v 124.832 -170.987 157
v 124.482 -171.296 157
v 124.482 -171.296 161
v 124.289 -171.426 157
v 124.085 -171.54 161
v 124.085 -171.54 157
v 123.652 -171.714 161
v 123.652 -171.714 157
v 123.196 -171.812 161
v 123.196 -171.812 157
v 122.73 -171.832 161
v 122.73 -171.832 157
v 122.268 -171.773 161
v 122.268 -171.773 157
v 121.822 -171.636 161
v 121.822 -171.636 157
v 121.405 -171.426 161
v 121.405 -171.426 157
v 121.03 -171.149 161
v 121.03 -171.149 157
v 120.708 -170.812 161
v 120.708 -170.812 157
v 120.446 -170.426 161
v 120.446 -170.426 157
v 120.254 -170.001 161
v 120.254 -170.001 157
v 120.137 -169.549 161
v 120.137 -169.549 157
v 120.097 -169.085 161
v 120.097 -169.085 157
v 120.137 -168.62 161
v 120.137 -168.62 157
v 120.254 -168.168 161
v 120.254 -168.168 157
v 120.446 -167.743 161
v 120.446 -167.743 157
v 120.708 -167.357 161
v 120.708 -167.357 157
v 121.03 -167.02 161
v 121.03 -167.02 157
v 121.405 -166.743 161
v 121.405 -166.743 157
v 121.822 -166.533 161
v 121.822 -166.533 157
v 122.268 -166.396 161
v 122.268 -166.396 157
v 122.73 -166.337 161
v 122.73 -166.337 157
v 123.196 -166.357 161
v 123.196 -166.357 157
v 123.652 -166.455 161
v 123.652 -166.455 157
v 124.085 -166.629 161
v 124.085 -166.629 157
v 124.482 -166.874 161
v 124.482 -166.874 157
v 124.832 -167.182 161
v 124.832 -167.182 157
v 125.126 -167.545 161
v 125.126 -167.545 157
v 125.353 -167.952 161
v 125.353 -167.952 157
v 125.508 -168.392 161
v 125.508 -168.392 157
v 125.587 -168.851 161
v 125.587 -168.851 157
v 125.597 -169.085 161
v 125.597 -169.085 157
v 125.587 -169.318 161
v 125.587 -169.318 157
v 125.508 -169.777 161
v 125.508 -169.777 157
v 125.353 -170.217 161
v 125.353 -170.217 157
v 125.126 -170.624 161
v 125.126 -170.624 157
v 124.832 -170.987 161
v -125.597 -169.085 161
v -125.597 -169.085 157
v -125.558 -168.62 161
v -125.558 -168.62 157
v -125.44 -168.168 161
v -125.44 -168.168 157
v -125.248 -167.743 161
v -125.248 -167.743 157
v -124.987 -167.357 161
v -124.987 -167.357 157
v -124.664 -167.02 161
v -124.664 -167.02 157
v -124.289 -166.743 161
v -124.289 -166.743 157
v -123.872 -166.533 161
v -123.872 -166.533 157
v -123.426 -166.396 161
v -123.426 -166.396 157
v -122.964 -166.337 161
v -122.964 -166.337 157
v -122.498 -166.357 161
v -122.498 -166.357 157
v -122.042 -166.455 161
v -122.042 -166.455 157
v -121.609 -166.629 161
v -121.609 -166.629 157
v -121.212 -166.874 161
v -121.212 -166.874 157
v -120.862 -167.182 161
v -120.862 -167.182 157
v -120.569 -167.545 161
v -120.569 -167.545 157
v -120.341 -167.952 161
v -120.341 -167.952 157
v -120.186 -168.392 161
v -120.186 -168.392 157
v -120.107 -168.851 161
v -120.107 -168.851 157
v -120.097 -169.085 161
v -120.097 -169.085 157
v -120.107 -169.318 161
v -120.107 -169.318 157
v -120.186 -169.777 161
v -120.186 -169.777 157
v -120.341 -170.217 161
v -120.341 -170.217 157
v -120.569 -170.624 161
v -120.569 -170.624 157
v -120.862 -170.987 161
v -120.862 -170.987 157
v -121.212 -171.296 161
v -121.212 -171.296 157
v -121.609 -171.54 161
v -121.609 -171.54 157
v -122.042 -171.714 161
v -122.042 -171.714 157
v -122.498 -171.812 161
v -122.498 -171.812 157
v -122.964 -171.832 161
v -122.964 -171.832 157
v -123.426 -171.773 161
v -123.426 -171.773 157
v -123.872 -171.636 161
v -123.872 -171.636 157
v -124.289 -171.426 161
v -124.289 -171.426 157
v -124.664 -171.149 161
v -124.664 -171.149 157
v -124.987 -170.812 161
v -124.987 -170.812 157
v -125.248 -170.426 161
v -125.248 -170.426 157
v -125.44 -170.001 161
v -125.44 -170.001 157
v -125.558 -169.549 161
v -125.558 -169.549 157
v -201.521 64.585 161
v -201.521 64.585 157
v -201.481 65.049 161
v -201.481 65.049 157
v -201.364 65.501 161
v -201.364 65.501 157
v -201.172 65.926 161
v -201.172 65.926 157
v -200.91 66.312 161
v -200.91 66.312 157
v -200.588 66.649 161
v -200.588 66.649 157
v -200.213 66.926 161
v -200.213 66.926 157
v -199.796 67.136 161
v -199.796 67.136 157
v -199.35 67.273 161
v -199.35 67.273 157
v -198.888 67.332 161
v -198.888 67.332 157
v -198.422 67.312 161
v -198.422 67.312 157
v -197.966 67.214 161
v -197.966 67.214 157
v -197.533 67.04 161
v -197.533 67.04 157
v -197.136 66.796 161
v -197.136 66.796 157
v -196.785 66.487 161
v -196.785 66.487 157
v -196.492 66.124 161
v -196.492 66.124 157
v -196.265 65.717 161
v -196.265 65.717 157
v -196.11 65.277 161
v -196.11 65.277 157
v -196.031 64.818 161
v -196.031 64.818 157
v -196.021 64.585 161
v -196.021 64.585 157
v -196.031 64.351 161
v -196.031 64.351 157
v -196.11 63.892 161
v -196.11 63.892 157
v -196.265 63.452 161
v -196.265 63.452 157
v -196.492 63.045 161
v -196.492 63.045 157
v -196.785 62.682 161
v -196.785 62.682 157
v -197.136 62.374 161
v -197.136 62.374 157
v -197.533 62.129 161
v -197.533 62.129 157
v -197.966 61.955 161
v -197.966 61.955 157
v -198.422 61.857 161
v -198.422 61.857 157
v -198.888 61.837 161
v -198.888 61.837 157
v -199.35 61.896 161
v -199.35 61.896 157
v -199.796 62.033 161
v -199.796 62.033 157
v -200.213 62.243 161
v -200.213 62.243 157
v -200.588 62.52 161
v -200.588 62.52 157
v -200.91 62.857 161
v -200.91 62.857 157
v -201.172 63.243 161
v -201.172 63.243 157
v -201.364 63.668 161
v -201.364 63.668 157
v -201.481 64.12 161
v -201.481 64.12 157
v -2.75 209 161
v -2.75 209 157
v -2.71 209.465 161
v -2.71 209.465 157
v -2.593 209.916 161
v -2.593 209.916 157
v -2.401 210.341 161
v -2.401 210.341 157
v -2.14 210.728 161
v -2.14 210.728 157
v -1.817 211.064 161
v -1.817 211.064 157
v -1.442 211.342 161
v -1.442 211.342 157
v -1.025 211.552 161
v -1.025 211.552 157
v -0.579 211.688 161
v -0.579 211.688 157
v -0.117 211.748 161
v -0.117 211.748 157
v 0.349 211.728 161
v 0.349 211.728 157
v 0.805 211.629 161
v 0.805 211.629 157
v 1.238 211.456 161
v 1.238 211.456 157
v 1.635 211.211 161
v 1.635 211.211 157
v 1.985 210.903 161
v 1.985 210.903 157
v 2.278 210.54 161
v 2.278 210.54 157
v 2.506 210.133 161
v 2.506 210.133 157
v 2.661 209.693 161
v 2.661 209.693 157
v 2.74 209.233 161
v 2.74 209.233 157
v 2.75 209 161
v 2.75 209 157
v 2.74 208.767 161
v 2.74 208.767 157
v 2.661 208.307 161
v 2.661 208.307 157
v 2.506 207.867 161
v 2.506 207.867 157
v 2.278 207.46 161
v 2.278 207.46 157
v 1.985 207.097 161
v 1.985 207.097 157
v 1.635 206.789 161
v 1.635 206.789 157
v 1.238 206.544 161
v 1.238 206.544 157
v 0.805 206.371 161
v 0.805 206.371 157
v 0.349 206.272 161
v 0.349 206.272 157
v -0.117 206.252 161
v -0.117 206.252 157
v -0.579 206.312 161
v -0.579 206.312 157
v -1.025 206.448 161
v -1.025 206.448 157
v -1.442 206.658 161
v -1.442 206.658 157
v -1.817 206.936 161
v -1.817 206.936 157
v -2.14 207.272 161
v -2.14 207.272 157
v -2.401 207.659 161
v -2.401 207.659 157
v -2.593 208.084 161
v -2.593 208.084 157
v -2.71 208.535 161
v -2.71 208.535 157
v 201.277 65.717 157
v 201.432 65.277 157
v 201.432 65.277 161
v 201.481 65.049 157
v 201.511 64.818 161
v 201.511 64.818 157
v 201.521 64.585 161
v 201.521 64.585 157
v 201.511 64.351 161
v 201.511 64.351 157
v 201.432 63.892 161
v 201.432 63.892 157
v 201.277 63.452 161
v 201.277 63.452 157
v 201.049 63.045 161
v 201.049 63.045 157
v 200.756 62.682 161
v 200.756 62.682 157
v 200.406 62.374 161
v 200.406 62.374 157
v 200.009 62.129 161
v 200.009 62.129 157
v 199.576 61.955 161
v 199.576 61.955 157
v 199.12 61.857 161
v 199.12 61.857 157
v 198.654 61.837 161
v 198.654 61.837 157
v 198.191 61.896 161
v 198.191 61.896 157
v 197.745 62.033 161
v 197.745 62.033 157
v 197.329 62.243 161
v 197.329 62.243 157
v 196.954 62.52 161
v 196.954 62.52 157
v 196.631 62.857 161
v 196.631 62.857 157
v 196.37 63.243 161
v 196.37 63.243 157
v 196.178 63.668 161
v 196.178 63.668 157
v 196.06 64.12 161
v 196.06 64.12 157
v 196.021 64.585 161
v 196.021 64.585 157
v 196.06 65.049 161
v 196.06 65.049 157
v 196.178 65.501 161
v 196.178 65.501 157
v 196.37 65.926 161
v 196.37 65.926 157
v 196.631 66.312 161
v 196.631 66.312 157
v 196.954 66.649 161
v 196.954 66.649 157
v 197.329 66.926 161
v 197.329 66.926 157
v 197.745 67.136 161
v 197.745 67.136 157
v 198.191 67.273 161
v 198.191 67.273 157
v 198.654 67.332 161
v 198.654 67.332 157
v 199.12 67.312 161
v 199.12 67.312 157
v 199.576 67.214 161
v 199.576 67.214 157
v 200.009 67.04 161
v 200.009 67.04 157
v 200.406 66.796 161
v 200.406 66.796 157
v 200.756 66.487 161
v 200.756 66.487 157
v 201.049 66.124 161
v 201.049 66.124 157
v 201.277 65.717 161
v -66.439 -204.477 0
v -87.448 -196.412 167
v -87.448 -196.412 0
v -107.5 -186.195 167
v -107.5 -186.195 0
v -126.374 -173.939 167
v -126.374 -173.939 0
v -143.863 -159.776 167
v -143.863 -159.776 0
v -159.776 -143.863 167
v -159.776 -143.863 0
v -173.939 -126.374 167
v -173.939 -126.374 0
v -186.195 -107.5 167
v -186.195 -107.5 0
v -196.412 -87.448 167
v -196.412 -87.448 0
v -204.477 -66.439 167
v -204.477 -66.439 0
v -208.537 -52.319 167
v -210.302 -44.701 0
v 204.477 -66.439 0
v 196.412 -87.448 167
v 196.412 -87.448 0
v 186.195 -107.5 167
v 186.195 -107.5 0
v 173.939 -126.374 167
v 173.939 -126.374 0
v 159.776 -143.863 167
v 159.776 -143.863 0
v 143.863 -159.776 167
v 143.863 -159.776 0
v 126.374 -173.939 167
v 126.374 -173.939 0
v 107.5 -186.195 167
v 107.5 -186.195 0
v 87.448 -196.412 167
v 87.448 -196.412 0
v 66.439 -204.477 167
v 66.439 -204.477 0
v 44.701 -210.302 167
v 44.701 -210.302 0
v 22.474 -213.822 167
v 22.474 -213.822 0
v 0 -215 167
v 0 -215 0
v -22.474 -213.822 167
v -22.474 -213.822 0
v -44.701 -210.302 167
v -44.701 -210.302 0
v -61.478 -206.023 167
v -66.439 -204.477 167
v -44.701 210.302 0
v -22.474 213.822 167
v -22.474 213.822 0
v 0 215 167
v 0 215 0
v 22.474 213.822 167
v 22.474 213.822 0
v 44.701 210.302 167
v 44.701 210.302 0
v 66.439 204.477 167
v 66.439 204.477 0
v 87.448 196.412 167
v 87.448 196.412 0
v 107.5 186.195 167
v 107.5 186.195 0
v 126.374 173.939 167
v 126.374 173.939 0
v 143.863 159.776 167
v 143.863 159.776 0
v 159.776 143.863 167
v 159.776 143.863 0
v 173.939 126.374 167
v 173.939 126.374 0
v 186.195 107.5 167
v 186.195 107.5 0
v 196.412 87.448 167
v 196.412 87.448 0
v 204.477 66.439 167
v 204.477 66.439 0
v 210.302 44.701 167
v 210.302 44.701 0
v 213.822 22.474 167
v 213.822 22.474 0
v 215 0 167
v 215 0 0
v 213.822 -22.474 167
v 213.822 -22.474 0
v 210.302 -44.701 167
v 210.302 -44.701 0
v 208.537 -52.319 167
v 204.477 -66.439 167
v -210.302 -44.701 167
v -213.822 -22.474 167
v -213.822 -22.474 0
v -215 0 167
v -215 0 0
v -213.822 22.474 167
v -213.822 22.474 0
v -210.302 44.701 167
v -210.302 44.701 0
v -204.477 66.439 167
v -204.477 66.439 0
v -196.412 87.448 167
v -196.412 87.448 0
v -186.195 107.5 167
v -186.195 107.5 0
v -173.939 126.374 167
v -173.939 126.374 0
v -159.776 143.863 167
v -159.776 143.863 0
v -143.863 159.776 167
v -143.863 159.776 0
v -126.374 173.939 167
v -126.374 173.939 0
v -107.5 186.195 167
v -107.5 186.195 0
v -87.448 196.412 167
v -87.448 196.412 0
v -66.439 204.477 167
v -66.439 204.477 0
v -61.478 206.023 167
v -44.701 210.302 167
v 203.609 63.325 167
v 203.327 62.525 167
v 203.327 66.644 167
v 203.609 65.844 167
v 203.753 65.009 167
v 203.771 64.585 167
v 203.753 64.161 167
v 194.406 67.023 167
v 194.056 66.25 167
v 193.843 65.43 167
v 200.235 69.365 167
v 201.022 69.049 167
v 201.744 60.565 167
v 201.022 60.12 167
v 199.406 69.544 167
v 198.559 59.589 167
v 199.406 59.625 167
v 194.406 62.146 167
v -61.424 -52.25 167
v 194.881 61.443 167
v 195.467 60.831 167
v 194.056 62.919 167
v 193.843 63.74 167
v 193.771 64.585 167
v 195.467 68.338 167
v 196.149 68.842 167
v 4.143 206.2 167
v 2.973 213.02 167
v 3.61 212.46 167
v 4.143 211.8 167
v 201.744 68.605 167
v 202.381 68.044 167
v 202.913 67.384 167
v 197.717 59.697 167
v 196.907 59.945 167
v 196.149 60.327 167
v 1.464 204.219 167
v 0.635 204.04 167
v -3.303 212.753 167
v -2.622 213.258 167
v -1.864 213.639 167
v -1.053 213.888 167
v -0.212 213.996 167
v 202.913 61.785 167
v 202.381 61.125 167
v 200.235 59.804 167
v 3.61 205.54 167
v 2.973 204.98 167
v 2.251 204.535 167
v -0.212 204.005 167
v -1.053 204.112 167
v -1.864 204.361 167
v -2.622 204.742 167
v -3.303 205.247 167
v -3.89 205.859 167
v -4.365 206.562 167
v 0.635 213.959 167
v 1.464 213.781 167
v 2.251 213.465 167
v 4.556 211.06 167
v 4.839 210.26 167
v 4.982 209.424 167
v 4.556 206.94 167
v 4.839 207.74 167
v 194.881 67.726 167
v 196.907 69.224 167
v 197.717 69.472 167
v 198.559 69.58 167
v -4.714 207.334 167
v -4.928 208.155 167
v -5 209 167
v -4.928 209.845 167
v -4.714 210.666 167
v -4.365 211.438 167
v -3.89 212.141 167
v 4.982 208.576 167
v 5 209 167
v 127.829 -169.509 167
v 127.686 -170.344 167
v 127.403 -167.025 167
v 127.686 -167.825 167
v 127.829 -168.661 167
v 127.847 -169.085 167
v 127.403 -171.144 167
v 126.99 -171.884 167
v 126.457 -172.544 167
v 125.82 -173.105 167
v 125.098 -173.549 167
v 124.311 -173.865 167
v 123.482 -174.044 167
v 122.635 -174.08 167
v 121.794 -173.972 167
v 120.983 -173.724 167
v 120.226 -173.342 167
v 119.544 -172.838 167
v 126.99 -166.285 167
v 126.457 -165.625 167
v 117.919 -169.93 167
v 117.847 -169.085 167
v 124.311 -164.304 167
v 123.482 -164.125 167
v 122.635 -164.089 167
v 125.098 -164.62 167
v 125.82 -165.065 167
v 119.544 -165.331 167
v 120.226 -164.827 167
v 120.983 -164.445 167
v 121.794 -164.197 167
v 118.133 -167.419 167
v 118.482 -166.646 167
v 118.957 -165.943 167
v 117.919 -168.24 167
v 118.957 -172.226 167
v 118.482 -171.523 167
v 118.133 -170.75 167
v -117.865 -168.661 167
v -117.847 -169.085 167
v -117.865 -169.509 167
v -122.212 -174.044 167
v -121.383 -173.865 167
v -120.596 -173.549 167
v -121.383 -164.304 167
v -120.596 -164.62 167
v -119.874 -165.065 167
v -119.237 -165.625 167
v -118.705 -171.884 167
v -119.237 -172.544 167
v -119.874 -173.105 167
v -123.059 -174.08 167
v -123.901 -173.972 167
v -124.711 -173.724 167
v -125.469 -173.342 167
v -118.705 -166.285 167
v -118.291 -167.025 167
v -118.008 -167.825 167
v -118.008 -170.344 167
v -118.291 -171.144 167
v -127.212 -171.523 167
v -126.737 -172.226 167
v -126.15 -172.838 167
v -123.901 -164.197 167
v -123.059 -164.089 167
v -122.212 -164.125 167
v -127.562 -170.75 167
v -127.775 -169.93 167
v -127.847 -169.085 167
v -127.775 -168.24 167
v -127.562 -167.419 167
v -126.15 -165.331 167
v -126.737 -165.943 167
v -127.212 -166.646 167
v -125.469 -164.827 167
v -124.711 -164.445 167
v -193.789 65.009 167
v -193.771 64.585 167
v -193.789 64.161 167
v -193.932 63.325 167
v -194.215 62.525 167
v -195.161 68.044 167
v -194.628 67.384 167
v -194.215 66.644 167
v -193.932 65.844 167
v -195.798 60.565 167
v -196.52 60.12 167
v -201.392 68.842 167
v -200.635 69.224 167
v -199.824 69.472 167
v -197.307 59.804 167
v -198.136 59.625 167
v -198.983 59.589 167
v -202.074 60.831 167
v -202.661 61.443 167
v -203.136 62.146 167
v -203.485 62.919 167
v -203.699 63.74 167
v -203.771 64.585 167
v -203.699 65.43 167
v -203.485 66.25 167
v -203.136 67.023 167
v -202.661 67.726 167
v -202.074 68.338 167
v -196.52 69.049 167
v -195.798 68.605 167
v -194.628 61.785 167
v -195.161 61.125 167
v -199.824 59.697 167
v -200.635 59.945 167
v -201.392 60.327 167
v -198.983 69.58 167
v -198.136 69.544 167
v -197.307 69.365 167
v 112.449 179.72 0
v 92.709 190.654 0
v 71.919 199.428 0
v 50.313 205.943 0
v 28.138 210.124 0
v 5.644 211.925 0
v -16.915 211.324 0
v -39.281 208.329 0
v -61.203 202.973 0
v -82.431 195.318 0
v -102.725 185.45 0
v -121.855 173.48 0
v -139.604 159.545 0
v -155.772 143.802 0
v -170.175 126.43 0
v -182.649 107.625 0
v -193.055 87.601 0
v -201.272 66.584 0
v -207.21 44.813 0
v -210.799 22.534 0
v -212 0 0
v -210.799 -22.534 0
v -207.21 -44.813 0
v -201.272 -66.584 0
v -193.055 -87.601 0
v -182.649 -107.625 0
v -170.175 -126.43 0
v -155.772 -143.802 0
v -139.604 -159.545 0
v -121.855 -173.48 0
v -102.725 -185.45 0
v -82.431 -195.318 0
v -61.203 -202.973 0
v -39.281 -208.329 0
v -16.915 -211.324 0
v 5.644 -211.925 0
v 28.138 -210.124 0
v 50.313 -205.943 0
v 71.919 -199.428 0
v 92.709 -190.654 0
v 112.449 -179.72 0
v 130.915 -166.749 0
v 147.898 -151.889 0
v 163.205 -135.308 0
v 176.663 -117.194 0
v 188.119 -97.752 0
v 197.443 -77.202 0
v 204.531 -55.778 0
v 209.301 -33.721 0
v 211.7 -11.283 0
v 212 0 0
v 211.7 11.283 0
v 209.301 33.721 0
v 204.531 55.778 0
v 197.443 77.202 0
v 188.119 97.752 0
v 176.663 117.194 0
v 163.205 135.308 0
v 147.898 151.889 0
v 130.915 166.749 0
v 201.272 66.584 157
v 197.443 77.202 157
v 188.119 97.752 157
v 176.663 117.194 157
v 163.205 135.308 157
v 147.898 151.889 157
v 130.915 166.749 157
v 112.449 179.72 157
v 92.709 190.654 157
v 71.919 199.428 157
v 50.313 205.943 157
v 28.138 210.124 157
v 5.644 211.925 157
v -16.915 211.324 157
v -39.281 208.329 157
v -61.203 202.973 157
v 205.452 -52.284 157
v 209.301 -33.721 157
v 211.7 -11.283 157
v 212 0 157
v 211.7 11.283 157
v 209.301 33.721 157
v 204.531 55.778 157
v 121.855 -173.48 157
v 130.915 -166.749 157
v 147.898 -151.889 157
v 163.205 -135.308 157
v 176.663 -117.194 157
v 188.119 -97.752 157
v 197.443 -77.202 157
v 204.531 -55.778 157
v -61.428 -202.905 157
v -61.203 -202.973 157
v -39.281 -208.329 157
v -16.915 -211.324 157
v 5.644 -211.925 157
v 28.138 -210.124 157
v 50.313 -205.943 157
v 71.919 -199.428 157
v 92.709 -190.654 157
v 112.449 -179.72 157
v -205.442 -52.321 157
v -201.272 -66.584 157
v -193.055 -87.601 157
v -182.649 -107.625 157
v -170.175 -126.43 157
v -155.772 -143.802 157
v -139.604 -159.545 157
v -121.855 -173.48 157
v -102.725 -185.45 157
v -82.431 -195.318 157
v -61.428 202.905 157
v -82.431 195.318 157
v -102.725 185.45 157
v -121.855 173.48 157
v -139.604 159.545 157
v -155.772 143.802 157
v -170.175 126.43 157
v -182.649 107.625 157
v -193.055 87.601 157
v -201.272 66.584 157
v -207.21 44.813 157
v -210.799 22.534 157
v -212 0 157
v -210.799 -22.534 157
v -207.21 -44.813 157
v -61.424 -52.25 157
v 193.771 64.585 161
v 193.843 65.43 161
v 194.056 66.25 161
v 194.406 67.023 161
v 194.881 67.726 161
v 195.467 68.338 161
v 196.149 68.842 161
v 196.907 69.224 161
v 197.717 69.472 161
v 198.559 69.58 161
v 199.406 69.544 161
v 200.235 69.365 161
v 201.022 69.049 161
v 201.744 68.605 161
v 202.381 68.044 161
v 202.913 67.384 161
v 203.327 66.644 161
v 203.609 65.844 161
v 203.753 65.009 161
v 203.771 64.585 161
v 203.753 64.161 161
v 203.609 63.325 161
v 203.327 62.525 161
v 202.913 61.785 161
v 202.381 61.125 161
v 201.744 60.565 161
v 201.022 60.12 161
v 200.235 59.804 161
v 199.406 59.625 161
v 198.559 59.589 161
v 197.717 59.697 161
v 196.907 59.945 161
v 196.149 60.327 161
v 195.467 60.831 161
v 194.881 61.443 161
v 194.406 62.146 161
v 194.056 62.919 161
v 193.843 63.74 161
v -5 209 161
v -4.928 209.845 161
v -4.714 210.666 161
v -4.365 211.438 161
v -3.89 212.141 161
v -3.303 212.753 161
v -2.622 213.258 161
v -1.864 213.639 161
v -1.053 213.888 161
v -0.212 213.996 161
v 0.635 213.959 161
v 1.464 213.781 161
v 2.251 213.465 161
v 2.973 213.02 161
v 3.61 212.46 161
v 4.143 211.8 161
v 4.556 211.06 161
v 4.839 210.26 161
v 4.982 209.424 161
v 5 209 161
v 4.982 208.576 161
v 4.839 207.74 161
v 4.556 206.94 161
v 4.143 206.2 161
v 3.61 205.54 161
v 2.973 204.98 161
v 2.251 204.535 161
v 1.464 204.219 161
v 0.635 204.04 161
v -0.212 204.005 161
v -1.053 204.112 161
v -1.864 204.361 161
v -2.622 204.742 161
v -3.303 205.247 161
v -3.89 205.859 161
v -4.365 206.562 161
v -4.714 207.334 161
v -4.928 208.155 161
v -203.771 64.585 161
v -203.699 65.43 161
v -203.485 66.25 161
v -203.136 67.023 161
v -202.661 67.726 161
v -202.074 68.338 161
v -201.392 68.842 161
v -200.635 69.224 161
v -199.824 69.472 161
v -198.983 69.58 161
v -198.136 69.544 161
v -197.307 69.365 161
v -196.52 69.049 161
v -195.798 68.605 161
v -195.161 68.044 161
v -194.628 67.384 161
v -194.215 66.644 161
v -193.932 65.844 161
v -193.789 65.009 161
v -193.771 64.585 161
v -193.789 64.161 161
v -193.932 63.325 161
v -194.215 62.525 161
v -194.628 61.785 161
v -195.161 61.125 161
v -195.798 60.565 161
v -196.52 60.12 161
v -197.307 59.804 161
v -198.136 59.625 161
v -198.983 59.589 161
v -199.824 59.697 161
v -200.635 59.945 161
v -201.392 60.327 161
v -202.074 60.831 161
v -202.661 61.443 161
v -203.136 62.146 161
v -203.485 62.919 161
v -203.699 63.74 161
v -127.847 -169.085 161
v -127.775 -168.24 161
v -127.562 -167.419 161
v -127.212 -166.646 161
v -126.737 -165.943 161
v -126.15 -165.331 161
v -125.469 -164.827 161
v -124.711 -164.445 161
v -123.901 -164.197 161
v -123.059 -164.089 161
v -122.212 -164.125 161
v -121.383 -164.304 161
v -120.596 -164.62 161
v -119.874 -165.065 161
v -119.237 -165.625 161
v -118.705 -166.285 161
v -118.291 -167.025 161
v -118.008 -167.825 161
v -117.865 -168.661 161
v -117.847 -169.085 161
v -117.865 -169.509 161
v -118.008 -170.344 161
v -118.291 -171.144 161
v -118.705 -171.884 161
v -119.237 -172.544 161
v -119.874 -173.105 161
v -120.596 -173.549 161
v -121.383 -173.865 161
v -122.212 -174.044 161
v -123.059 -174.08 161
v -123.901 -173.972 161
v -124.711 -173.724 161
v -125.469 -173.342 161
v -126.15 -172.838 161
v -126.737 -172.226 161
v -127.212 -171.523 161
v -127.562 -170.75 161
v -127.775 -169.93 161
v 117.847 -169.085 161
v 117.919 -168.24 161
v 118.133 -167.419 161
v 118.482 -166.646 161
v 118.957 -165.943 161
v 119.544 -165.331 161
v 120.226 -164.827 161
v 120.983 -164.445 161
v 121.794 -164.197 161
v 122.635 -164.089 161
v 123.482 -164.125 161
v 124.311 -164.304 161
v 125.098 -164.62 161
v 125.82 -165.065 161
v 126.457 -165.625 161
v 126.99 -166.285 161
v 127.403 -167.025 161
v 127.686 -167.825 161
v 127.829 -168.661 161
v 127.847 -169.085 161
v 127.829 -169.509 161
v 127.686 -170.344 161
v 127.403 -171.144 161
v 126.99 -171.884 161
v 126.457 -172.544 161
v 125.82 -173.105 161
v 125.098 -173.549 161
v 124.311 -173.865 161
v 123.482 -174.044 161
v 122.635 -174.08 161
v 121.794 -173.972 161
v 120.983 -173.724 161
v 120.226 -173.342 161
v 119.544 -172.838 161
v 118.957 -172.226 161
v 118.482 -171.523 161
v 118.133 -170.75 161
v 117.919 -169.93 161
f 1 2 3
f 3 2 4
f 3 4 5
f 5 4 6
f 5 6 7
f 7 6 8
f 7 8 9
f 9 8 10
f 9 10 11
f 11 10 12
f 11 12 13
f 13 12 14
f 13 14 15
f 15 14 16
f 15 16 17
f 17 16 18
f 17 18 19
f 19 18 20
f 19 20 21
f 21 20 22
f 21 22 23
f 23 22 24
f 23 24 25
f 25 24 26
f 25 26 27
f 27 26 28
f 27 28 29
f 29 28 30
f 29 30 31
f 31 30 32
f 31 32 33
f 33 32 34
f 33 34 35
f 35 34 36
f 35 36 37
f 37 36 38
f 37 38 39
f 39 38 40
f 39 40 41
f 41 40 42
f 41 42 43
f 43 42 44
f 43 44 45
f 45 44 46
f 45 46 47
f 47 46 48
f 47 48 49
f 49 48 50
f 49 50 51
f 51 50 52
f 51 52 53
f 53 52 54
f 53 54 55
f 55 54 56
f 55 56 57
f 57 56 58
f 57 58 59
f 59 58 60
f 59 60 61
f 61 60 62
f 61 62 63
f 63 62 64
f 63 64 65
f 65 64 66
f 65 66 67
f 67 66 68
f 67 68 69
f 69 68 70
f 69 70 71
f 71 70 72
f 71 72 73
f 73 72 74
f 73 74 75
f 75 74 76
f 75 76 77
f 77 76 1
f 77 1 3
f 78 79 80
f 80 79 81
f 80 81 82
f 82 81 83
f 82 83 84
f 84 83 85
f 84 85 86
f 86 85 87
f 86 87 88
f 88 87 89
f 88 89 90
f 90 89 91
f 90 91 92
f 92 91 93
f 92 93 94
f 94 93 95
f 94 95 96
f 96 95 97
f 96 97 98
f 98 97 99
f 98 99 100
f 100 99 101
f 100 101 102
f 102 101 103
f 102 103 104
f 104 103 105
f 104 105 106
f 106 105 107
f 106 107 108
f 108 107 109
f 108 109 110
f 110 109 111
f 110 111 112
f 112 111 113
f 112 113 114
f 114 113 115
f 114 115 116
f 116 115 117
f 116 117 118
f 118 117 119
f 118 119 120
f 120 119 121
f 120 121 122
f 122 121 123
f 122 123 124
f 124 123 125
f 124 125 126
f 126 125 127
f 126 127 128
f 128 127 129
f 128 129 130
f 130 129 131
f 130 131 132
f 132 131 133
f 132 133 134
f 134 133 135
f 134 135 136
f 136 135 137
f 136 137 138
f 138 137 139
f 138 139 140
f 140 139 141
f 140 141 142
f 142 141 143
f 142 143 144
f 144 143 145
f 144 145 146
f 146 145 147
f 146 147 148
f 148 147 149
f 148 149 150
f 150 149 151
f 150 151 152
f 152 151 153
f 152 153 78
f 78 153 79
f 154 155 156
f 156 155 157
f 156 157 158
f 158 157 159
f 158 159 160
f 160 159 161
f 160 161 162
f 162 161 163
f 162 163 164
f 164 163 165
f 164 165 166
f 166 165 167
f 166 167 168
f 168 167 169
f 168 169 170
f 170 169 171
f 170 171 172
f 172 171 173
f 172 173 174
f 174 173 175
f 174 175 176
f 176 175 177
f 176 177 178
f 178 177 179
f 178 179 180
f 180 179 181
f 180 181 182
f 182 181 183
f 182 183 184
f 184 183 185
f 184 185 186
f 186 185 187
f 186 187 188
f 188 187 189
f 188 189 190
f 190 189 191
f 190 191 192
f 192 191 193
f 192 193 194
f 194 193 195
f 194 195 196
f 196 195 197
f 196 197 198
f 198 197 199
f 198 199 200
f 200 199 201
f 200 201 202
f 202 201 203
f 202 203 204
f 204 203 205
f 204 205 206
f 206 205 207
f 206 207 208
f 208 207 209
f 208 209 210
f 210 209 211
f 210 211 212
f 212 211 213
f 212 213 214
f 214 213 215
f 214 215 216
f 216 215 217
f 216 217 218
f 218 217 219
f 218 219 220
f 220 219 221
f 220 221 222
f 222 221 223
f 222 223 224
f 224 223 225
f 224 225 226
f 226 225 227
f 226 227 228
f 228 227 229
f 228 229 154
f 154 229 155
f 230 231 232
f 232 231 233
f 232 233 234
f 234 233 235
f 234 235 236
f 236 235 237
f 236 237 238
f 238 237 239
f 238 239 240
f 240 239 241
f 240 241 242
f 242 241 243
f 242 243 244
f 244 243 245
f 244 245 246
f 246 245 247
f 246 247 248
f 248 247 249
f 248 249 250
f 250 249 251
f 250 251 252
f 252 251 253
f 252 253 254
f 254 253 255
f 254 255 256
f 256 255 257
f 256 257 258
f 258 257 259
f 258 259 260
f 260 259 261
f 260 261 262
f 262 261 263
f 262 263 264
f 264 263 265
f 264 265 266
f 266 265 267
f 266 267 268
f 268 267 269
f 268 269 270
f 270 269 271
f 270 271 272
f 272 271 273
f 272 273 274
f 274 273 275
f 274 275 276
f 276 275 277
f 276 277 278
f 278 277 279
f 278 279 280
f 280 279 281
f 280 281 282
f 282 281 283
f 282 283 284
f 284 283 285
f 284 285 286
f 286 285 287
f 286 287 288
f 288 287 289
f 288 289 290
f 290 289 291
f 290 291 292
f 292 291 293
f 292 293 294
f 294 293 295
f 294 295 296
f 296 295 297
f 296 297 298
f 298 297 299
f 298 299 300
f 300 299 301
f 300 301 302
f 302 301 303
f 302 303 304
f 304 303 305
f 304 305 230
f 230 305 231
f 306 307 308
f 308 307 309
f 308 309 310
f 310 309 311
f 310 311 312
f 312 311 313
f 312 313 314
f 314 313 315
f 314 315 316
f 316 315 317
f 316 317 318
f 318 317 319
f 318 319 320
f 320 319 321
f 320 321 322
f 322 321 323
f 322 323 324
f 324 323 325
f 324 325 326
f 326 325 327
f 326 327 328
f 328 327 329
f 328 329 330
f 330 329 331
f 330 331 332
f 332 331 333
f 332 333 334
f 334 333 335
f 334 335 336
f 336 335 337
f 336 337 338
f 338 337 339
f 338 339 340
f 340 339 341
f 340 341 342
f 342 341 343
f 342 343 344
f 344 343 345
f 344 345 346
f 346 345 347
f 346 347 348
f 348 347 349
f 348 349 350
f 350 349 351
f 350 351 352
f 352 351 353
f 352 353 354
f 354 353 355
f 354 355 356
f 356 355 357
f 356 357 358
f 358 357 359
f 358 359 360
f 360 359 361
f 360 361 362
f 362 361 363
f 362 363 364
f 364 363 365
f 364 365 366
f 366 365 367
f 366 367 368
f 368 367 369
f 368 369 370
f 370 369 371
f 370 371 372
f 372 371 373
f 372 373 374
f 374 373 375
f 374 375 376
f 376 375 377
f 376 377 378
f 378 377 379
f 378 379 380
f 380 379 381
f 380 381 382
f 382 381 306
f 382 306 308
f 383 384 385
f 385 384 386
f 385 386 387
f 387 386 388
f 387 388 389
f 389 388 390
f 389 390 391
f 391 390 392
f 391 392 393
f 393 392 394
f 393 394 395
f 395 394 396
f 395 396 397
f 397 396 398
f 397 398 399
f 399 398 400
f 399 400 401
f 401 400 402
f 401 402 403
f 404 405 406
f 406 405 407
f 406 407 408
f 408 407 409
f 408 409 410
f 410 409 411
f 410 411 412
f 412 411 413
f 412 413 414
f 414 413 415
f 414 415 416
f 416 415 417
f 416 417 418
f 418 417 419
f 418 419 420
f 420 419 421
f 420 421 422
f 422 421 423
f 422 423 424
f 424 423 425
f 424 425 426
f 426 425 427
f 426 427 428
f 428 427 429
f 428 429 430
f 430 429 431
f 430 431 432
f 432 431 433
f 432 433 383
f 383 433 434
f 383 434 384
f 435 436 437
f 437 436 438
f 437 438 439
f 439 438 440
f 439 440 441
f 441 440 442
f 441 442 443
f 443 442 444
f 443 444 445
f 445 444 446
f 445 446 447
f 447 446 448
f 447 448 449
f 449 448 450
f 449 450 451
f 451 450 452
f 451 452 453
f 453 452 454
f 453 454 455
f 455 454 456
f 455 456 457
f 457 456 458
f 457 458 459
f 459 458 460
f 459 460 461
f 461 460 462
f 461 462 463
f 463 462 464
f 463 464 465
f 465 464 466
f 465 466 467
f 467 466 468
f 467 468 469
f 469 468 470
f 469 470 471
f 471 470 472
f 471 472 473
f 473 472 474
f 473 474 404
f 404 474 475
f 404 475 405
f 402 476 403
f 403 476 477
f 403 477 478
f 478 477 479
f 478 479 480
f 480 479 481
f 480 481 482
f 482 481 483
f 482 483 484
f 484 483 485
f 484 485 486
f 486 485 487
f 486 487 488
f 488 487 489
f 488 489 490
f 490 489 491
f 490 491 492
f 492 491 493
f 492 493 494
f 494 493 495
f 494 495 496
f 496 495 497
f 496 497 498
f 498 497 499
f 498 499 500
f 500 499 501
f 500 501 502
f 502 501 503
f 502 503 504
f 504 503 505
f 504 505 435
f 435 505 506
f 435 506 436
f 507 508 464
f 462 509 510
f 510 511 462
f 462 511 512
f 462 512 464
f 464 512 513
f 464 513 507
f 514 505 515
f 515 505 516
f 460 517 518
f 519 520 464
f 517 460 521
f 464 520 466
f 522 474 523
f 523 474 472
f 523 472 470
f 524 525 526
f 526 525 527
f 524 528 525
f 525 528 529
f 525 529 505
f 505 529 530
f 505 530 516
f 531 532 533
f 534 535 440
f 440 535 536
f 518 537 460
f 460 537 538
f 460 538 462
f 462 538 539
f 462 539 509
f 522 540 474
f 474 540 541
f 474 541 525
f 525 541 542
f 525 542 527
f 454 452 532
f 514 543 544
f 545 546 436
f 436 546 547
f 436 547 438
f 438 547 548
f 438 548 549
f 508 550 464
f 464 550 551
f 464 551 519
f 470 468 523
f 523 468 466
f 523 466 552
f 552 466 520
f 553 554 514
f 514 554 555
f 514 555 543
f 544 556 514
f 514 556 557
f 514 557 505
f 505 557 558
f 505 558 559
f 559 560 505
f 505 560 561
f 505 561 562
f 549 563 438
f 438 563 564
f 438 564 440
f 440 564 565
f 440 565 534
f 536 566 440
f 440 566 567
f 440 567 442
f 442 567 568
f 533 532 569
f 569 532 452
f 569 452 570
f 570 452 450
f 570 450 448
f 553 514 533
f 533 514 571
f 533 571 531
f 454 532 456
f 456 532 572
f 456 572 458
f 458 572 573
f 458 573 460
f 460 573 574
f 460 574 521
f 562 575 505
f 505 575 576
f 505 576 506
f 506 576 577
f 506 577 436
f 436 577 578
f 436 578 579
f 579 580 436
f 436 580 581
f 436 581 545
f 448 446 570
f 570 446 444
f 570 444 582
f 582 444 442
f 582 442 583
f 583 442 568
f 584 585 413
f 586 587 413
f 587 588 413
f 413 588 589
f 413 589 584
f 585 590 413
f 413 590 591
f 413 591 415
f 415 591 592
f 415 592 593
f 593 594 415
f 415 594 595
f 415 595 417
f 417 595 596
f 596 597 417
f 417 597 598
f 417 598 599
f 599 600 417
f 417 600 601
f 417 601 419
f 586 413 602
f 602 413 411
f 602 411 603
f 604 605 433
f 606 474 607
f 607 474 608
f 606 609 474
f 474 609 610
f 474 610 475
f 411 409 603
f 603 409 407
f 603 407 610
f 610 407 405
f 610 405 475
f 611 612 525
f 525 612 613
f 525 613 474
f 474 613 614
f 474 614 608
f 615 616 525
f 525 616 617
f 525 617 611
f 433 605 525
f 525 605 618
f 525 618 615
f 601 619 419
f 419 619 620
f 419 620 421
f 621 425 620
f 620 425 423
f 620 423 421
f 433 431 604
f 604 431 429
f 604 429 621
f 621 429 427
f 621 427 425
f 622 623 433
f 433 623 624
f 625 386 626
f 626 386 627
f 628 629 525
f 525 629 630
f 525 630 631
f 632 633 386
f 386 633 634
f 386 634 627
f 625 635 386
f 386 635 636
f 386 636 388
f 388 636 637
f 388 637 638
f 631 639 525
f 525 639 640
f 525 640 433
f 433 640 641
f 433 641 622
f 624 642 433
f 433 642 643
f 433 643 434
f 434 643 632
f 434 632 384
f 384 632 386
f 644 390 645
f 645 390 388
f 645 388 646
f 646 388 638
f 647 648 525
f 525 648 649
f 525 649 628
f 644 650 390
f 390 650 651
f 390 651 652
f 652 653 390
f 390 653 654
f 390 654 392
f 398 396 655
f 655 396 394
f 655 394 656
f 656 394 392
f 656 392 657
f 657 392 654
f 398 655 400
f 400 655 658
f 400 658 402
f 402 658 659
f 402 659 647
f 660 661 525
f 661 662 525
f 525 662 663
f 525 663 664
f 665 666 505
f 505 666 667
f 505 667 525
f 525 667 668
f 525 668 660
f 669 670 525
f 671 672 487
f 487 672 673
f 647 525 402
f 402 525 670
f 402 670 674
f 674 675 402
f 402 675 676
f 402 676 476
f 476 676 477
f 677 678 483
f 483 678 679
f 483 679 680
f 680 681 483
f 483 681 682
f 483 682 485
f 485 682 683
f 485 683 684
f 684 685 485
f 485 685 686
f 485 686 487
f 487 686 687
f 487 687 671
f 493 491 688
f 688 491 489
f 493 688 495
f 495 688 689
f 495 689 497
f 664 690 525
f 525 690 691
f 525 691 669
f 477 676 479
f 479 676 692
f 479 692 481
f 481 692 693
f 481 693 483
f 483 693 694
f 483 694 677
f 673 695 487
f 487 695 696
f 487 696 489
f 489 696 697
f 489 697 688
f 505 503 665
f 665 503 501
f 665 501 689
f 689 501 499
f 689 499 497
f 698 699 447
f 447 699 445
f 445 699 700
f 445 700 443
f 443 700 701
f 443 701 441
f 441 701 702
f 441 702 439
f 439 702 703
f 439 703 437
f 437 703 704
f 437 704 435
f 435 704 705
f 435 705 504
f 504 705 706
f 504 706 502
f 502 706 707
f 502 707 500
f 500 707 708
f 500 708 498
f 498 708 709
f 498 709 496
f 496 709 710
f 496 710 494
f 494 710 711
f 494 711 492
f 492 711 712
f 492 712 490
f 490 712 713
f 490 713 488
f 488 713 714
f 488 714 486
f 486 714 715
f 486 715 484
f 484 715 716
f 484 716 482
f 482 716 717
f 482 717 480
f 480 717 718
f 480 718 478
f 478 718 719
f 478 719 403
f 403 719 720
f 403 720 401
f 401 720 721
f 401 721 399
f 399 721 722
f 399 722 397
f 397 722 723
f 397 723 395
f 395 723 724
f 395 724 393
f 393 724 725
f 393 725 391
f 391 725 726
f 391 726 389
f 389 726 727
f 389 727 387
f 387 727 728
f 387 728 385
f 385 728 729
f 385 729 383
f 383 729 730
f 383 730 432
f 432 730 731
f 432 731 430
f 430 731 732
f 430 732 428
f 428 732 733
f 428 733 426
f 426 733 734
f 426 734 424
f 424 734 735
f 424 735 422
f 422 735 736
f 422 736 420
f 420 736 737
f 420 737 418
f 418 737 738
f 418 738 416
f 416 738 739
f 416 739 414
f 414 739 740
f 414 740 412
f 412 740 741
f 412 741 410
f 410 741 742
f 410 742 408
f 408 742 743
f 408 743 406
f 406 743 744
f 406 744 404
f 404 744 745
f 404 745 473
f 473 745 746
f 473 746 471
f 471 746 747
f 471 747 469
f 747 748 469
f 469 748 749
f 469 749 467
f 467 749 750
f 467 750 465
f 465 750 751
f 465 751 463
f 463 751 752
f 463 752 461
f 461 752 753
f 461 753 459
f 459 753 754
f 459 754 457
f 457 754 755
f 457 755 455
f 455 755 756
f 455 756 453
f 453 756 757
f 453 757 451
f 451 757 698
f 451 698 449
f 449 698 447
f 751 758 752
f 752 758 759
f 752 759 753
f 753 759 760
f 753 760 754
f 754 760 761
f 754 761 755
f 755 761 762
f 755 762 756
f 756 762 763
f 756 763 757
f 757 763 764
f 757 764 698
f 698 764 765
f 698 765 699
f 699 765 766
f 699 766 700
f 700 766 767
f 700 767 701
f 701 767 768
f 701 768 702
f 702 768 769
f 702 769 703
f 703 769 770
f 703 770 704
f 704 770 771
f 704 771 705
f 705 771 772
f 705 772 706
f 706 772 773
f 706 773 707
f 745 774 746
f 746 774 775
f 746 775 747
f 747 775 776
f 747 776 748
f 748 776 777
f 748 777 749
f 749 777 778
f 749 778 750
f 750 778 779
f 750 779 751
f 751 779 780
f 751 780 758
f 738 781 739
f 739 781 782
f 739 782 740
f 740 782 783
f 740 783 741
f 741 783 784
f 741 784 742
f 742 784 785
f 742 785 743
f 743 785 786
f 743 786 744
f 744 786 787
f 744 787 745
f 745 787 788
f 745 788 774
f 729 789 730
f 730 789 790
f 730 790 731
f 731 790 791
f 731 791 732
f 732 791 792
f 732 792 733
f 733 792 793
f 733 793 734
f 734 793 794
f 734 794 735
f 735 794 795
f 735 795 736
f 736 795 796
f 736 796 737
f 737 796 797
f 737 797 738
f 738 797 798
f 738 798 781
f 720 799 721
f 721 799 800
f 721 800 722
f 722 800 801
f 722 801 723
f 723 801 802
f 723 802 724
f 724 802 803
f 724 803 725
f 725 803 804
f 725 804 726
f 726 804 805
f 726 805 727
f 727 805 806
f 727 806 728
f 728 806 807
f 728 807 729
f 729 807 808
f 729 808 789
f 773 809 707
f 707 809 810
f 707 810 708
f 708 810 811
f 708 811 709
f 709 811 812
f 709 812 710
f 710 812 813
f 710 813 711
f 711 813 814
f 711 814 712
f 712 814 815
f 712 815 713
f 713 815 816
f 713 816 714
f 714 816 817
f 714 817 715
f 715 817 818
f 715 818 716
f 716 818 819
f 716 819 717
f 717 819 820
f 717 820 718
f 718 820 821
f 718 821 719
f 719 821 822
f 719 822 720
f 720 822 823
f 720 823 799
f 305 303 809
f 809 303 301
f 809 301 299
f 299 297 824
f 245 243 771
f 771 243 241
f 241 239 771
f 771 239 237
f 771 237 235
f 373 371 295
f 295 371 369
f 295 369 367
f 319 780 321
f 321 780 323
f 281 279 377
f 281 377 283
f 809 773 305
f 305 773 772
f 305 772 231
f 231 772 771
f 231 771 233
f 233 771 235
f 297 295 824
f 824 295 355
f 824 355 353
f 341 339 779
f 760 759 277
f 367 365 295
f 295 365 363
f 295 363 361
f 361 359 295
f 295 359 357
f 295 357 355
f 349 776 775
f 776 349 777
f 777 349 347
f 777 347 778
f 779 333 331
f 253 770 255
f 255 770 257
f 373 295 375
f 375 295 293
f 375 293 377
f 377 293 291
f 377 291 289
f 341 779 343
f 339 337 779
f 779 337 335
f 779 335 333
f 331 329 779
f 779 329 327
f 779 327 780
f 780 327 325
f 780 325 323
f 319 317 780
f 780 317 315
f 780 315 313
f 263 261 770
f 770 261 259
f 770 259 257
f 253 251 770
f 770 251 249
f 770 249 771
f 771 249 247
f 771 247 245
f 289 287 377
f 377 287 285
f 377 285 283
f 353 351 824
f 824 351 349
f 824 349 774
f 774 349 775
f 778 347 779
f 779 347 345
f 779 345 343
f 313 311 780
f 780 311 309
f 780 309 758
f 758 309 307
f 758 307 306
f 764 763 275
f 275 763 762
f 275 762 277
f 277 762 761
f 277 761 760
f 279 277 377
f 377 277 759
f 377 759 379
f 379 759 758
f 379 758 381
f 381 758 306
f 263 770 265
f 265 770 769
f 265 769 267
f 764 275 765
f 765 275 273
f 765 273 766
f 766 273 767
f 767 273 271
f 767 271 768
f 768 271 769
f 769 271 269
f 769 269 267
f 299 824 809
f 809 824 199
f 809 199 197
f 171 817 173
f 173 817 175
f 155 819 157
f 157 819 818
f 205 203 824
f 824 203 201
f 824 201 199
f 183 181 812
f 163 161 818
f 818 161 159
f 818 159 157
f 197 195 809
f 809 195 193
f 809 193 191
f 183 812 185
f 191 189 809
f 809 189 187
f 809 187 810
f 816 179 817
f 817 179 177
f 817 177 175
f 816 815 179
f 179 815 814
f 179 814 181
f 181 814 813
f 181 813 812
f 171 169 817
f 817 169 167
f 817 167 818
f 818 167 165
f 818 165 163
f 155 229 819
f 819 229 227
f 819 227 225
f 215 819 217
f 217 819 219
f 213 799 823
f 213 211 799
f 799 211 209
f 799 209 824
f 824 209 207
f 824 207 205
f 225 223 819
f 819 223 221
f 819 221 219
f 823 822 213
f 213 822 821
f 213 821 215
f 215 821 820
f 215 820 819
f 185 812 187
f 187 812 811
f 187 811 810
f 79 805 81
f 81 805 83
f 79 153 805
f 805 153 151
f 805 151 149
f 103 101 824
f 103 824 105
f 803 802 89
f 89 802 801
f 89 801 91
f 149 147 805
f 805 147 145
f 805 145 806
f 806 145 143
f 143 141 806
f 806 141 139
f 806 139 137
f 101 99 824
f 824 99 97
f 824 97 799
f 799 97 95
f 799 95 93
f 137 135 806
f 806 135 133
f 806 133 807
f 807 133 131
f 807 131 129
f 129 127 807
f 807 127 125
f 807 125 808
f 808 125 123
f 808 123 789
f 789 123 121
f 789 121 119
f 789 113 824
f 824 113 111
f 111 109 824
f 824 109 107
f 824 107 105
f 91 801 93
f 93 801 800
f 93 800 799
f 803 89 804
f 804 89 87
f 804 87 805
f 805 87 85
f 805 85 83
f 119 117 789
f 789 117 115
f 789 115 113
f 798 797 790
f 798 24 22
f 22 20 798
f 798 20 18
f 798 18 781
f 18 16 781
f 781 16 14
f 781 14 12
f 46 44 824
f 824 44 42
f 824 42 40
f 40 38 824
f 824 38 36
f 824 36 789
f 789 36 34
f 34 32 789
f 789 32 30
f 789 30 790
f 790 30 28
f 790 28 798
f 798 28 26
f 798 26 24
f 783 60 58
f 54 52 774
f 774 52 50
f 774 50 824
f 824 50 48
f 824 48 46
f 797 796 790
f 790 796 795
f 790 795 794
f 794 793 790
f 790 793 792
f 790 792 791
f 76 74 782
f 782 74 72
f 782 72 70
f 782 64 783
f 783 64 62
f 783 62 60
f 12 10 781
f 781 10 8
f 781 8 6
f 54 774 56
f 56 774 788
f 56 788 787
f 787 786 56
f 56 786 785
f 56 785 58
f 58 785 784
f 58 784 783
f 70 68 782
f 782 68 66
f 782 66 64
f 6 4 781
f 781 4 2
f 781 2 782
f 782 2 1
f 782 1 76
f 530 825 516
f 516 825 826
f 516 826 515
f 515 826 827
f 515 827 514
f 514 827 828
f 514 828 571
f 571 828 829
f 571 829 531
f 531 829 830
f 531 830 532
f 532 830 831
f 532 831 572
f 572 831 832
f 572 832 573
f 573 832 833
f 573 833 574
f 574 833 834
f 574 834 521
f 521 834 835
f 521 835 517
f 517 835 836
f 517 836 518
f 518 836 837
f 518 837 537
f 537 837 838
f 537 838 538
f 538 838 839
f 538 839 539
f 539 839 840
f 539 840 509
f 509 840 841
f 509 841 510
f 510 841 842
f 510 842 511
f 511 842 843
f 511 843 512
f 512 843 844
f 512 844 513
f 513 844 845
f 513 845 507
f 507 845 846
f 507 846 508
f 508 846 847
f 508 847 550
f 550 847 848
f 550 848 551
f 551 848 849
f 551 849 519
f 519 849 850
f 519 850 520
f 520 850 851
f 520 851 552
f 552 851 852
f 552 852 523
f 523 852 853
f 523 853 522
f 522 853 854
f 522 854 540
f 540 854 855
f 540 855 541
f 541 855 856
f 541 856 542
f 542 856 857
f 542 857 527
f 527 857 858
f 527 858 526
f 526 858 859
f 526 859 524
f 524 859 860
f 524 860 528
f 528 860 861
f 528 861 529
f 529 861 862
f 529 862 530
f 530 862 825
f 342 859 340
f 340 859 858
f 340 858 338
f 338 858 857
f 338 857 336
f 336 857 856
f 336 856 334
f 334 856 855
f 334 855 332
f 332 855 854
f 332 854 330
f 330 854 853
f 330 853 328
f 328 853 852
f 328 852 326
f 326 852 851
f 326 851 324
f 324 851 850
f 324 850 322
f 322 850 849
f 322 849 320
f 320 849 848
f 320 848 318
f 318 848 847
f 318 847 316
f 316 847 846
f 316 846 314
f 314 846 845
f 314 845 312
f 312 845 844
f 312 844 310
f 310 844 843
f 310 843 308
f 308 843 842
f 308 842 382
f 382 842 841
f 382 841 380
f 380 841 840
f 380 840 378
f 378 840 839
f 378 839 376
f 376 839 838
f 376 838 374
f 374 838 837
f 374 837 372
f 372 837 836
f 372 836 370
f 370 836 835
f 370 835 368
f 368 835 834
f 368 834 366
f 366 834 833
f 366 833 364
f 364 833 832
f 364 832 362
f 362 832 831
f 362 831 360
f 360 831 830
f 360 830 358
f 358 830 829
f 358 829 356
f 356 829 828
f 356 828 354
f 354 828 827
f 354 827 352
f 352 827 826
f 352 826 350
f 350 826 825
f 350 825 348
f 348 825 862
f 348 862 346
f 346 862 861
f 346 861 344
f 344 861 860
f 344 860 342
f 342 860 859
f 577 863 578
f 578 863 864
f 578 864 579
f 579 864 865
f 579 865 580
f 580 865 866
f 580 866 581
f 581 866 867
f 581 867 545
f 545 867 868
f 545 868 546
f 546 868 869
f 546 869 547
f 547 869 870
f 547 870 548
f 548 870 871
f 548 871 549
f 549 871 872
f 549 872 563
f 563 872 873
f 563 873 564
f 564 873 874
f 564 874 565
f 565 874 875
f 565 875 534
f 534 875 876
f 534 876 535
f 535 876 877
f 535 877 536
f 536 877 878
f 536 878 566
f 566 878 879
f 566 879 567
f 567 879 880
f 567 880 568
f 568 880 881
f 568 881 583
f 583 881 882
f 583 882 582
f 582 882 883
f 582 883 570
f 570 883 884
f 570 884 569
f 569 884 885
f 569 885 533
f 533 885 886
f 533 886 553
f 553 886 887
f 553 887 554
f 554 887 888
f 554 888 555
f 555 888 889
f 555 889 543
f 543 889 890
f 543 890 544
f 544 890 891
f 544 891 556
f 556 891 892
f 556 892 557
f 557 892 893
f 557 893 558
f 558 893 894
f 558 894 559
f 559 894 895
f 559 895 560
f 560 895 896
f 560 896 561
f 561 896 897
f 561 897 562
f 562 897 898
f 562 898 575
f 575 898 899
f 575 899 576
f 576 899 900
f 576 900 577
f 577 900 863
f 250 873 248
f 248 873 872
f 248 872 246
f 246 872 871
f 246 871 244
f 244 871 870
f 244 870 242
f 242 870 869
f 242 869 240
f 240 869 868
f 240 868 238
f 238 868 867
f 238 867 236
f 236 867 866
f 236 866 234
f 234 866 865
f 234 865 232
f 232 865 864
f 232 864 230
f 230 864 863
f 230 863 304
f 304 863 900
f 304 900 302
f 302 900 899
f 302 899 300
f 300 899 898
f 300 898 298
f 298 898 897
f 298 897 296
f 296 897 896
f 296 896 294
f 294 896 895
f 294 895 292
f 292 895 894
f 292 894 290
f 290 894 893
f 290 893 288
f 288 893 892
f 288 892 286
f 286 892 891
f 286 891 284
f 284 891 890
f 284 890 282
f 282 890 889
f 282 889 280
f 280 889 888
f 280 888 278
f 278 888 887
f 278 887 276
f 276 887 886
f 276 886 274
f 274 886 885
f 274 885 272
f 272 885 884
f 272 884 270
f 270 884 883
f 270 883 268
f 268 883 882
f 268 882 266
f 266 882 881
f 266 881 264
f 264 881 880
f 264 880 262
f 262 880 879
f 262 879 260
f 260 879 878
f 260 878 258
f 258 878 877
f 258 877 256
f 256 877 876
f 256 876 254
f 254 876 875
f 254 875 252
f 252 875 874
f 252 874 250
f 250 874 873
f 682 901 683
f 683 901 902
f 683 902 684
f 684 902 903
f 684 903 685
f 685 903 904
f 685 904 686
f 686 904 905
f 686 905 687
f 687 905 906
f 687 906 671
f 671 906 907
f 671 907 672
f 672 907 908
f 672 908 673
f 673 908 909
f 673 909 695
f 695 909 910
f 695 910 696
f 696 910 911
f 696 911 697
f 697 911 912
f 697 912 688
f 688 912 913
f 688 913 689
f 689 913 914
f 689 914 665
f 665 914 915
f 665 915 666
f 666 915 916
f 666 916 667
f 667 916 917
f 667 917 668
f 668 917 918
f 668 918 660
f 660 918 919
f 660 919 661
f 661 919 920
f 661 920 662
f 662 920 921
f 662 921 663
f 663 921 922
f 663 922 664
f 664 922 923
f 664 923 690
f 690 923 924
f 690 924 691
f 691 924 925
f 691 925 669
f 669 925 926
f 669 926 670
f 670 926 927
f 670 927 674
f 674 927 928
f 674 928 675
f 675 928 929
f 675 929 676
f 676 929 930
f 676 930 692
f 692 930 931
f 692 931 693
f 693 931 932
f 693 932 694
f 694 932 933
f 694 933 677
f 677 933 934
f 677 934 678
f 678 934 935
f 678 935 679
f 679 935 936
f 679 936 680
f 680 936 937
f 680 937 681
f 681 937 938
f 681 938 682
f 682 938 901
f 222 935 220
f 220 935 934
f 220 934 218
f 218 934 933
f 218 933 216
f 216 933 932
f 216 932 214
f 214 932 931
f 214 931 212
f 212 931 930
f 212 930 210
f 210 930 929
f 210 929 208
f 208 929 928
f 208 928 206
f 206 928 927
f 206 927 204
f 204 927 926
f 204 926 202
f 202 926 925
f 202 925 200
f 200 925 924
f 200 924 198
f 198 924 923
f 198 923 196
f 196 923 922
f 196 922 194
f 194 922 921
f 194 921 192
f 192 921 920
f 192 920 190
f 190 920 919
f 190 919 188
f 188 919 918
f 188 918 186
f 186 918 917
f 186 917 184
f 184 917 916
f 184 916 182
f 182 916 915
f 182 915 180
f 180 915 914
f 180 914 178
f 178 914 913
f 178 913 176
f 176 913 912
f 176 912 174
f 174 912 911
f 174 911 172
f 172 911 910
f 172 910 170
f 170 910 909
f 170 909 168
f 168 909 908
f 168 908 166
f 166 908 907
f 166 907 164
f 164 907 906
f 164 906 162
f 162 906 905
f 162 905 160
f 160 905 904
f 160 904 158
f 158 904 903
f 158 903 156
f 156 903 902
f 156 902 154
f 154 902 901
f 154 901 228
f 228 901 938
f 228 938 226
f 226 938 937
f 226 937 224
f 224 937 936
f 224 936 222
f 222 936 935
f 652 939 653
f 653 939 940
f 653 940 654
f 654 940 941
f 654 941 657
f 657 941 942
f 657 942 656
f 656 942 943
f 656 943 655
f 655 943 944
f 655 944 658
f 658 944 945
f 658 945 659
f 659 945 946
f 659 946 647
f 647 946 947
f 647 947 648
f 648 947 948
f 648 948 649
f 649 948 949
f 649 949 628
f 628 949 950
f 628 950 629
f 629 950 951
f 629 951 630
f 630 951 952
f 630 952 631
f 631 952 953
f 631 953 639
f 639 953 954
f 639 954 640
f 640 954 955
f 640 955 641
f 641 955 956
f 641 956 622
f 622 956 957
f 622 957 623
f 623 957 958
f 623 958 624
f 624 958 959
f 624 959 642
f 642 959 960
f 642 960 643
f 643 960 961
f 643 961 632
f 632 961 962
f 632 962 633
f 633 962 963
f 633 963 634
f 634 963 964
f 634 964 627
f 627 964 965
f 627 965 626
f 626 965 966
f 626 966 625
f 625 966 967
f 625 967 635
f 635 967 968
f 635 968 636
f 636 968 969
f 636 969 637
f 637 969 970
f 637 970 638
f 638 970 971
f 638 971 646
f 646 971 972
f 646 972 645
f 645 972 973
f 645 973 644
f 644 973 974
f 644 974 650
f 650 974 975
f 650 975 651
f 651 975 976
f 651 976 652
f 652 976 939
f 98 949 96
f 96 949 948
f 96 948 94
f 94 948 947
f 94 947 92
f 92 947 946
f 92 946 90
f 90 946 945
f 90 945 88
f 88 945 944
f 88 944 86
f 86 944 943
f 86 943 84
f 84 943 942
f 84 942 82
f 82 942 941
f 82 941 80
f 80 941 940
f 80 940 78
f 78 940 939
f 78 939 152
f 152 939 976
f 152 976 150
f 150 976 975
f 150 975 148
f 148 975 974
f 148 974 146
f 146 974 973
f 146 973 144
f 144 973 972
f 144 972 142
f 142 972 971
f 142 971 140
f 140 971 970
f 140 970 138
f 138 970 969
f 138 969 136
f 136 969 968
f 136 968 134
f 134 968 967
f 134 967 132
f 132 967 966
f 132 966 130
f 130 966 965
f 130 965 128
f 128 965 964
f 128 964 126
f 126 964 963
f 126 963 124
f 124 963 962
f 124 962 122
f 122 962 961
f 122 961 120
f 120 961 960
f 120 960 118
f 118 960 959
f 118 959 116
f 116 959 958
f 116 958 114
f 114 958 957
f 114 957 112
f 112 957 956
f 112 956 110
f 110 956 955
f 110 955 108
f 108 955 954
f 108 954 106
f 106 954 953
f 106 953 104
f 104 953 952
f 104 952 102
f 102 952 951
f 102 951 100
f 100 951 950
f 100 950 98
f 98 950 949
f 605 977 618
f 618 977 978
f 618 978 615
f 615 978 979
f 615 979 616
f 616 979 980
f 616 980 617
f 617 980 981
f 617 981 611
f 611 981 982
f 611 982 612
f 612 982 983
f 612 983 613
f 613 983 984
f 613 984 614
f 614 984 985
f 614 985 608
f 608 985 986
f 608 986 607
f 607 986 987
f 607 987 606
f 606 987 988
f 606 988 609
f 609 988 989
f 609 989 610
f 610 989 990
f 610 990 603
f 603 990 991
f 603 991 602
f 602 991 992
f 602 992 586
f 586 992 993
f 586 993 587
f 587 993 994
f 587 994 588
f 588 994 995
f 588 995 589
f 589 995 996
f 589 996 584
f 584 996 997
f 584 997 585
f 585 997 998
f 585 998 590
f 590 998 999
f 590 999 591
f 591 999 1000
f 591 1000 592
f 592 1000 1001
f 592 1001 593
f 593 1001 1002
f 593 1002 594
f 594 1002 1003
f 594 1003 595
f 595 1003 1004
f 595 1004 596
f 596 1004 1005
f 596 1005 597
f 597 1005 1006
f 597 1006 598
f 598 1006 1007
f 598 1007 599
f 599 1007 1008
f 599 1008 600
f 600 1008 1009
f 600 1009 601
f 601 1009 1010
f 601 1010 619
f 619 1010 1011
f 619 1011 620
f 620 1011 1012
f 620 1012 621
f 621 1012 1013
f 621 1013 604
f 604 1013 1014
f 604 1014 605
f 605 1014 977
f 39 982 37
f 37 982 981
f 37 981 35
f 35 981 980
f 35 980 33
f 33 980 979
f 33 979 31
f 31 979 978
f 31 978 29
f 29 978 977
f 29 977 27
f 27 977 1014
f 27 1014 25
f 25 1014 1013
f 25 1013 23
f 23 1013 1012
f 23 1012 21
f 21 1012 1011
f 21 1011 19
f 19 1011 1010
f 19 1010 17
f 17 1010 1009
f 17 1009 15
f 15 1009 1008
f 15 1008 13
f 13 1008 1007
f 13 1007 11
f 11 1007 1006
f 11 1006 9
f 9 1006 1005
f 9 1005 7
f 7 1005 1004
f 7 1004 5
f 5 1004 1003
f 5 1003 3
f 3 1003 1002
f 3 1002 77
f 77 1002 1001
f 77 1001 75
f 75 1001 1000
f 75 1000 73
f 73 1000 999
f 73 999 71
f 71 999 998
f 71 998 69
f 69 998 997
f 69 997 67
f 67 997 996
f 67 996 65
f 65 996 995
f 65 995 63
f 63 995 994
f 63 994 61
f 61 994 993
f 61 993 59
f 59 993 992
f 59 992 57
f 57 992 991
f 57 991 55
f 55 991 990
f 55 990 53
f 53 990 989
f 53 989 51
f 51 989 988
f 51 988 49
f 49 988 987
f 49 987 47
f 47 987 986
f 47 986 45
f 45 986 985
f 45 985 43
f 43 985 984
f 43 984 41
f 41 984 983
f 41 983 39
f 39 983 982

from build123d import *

# Parameters (mm, degrees)
SKETCH1_R              = 215
BODY_DEPTH             = 167
SKETCH2_R              = 212
CAVITY_DEPTH           = 157
SKETCH3_R              = 2.75
ROD_HOLES_DEPTH        = 10
SKETCH4_R              = 5
NUT_COUNTERBORES_DEPTH = 6


with BuildPart() as part:
    # Sketch1 → Body (new body)
    with BuildSketch(Plane.XY):
        with Locations(Location((0, 0, 0), (0, 0, 180))):
            Circle(SKETCH1_R)
    extrude(amount=BODY_DEPTH)

    # Sketch2 → Cavity (cut)
    with BuildSketch(Plane.XY):
        Circle(SKETCH2_R)
    extrude(amount=CAVITY_DEPTH, mode=Mode.SUBTRACT)

    # Sketch3 → Rod_holes (cut)
    with BuildSketch(Plane.XY.offset(157)):
        with Locations((198.770811906, 64.584551824)):
            Circle(SKETCH3_R)
        with Locations((0, 209)):
            Circle(SKETCH3_R)
        with Locations((-198.770811906, 64.584551824)):
            Circle(SKETCH3_R)
        with Locations((-122.847117729, -169.084551824)):
            Circle(SKETCH3_R)
        with Locations((122.847117729, -169.084551824)):
            Circle(SKETCH3_R)
    extrude(amount=ROD_HOLES_DEPTH, mode=Mode.SUBTRACT)

    # Sketch4 → Nut_counterbores (cut)
    with BuildSketch(Plane.XY.offset(161)):
        with Locations((198.770811906, 64.584551824)):
            Circle(SKETCH4_R)
        with Locations((0, 209)):
            Circle(SKETCH4_R)
        with Locations((-198.770811906, 64.584551824)):
            Circle(SKETCH4_R)
        with Locations((-122.847117729, -169.084551824)):
            Circle(SKETCH4_R)
        with Locations((122.847117729, -169.084551824)):
            Circle(SKETCH4_R)
    extrude(amount=NUT_COUNTERBORES_DEPTH, mode=Mode.SUBTRACT)


solid = part.part
